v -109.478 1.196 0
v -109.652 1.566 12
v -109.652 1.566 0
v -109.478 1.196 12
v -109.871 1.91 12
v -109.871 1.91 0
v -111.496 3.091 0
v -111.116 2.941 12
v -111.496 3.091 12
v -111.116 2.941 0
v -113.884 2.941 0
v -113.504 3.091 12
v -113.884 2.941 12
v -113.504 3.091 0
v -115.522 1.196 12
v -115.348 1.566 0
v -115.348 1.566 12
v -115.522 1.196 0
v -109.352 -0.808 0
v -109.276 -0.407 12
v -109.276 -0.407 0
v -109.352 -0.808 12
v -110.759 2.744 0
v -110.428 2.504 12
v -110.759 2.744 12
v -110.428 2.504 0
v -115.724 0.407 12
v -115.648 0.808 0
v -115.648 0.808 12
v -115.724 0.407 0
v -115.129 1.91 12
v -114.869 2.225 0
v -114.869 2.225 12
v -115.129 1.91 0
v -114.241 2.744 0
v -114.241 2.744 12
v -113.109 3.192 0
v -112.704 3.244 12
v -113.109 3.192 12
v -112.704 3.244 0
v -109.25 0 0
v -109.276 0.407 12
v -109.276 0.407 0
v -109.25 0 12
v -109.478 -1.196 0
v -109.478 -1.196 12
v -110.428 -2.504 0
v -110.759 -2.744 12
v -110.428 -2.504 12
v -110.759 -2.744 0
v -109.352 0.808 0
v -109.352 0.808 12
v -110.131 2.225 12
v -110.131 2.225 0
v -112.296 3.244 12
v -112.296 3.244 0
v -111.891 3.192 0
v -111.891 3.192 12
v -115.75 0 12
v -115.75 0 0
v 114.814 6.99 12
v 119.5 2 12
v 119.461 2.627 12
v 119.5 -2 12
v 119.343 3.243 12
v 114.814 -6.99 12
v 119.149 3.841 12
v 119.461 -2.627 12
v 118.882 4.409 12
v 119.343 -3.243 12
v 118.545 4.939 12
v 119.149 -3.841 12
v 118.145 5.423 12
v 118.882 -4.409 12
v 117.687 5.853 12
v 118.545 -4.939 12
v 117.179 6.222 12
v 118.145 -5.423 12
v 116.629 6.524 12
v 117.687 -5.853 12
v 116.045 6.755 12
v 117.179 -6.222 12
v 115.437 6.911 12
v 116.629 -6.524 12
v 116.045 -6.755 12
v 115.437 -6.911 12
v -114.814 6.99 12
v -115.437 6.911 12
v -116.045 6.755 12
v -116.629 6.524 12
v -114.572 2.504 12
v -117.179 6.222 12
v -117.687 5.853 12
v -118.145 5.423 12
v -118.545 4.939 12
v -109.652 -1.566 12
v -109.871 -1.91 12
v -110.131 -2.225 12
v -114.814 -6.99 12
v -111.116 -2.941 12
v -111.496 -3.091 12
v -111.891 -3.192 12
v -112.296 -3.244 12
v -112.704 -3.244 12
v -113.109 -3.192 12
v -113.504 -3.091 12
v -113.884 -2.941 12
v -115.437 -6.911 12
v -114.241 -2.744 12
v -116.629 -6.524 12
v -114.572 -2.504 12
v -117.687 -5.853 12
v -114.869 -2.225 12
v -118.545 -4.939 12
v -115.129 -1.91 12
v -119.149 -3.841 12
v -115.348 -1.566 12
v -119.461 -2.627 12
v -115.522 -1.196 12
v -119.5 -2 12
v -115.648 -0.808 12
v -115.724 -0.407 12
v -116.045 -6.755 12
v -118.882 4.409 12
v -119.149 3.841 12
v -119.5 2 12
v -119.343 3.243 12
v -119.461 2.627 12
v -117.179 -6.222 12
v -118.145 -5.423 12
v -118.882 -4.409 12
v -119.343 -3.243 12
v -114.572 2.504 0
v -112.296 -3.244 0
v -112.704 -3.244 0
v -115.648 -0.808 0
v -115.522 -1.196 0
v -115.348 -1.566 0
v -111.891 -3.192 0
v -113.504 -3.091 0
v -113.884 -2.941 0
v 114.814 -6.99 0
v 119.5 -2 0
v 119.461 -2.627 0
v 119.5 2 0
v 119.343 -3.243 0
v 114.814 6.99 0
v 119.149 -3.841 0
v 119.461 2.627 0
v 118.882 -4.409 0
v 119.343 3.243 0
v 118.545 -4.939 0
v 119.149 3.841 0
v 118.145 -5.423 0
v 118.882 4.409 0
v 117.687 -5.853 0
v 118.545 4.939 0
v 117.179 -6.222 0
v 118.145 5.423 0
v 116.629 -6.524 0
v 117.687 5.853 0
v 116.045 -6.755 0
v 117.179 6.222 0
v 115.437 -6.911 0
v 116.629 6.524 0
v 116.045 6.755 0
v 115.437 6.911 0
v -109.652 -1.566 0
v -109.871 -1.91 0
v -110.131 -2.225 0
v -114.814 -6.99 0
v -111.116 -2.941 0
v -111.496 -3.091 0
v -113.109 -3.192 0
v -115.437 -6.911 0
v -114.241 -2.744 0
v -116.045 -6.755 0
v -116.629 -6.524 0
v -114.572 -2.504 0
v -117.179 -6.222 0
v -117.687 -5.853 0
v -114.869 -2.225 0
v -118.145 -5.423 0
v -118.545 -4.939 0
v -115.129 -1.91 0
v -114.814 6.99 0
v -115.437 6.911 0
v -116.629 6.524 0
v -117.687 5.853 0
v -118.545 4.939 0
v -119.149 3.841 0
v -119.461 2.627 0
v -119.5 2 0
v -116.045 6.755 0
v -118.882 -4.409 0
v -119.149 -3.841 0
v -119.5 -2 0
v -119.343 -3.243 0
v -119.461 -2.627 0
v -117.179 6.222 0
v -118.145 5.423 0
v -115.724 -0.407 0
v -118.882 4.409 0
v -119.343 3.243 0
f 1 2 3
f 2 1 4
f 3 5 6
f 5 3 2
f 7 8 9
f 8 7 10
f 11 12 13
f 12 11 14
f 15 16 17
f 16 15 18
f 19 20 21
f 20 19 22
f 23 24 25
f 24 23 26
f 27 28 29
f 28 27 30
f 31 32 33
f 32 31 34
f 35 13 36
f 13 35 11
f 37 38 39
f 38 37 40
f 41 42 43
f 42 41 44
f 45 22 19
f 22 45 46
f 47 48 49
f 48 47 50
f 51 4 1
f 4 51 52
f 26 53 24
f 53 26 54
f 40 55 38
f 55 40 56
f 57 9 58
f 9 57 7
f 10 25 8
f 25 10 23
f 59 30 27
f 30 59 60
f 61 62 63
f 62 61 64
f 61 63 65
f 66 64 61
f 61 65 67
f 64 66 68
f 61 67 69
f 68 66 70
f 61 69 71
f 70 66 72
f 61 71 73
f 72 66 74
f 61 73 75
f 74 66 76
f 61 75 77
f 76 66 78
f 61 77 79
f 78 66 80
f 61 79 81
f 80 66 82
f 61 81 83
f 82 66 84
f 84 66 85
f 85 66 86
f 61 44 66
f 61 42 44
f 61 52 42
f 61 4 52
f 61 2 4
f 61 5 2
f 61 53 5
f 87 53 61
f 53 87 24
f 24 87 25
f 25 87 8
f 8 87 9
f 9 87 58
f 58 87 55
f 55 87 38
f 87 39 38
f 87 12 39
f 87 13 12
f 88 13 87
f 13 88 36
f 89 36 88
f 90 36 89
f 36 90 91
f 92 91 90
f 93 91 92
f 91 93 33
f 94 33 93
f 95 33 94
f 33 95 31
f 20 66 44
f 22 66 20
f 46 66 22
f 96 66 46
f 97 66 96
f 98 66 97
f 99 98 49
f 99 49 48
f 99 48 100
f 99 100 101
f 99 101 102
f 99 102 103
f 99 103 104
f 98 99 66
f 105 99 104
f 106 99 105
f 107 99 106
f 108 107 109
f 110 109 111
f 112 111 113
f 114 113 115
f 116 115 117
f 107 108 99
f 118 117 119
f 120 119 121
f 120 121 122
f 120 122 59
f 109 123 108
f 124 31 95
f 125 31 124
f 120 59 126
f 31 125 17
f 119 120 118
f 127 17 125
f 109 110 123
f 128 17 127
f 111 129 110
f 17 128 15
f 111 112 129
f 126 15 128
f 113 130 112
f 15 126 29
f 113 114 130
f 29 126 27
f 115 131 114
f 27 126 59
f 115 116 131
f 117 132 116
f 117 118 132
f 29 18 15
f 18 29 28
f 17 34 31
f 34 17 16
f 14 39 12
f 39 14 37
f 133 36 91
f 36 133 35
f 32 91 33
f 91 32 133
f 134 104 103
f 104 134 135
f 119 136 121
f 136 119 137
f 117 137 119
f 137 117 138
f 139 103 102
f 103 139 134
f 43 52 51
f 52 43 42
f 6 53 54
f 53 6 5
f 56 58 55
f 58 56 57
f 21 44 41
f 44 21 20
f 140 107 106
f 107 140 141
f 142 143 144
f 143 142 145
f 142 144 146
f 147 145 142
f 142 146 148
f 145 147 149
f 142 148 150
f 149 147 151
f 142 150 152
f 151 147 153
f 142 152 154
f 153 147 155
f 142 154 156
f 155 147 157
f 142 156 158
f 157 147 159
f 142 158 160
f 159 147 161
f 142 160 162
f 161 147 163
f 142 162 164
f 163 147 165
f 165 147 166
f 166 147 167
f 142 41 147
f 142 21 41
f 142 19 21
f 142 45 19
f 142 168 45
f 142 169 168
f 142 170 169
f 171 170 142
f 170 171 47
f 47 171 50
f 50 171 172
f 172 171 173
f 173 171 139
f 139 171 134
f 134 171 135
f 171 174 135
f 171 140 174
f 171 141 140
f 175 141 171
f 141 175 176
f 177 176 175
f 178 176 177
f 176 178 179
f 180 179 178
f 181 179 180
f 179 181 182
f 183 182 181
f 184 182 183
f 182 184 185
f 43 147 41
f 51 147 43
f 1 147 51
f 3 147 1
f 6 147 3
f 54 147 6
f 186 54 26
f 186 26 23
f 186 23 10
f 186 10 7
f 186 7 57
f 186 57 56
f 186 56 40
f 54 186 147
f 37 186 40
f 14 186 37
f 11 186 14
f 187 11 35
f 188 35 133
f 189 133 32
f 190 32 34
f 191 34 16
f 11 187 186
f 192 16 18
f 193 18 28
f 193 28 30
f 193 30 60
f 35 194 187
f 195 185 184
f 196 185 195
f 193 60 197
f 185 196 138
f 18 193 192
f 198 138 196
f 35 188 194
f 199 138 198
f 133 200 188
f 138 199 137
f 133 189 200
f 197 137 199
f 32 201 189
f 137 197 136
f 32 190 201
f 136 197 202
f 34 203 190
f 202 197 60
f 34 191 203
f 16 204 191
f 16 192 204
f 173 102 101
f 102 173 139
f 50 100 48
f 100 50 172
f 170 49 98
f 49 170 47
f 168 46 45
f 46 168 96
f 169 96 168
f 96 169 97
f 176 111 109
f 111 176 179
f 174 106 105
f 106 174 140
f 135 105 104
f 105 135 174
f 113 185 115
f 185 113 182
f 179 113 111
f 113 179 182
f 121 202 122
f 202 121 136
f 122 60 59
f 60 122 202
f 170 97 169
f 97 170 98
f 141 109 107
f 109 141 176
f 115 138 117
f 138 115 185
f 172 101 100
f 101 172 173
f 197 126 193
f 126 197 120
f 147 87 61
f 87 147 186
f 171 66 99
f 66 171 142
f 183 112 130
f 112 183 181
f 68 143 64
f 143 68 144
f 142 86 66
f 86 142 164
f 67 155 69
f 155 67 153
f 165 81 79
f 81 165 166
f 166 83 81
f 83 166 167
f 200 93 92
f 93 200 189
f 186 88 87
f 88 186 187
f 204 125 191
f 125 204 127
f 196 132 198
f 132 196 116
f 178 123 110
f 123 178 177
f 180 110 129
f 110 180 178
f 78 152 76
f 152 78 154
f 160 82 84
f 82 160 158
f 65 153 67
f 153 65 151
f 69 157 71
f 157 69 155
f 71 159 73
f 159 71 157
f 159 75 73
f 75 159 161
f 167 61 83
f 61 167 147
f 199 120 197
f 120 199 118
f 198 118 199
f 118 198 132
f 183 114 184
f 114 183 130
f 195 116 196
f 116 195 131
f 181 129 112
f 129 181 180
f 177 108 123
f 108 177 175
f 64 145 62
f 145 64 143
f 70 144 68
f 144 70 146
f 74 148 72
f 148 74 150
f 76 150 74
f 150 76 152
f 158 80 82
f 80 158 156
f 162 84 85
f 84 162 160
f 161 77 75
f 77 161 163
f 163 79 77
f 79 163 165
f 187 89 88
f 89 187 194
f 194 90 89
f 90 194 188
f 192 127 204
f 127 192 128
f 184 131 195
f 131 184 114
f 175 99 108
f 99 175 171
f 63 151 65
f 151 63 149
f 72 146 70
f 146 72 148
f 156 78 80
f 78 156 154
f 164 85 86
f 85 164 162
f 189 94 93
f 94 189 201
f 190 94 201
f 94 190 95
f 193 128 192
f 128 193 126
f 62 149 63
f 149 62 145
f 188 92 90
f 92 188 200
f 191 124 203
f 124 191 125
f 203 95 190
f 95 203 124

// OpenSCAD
$fn = 50;


difference() {
	union() {
		hull() {
			translate(v = [-114.5000000000, 2.0000000000, 0]) {
				cylinder(h = 12, r = 5);
			}
			translate(v = [114.5000000000, 2.0000000000, 0]) {
				cylinder(h = 12, r = 5);
			}
			translate(v = [-114.5000000000, -2.0000000000, 0]) {
				cylinder(h = 12, r = 5);
			}
			translate(v = [114.5000000000, -2.0000000000, 0]) {
				cylinder(h = 12, r = 5);
			}
		}
	}
	union() {
		translate(v = [-112.5000000000, 0.0000000000, 0]) {
			cylinder(h = 12, r = 3.2500000000);
		}
		translate(v = [-112.5000000000, 0.0000000000, 0]) {
			cylinder(h = 12, r = 1.8000000000);
		}
		translate(v = [-112.5000000000, 0.0000000000, 0]) {
			cylinder(h = 12, r = 1.8000000000);
		}
		translate(v = [-112.5000000000, 0.0000000000, 0]) {
			cylinder(h = 12, r = 1.8000000000);
		}
	}
}
